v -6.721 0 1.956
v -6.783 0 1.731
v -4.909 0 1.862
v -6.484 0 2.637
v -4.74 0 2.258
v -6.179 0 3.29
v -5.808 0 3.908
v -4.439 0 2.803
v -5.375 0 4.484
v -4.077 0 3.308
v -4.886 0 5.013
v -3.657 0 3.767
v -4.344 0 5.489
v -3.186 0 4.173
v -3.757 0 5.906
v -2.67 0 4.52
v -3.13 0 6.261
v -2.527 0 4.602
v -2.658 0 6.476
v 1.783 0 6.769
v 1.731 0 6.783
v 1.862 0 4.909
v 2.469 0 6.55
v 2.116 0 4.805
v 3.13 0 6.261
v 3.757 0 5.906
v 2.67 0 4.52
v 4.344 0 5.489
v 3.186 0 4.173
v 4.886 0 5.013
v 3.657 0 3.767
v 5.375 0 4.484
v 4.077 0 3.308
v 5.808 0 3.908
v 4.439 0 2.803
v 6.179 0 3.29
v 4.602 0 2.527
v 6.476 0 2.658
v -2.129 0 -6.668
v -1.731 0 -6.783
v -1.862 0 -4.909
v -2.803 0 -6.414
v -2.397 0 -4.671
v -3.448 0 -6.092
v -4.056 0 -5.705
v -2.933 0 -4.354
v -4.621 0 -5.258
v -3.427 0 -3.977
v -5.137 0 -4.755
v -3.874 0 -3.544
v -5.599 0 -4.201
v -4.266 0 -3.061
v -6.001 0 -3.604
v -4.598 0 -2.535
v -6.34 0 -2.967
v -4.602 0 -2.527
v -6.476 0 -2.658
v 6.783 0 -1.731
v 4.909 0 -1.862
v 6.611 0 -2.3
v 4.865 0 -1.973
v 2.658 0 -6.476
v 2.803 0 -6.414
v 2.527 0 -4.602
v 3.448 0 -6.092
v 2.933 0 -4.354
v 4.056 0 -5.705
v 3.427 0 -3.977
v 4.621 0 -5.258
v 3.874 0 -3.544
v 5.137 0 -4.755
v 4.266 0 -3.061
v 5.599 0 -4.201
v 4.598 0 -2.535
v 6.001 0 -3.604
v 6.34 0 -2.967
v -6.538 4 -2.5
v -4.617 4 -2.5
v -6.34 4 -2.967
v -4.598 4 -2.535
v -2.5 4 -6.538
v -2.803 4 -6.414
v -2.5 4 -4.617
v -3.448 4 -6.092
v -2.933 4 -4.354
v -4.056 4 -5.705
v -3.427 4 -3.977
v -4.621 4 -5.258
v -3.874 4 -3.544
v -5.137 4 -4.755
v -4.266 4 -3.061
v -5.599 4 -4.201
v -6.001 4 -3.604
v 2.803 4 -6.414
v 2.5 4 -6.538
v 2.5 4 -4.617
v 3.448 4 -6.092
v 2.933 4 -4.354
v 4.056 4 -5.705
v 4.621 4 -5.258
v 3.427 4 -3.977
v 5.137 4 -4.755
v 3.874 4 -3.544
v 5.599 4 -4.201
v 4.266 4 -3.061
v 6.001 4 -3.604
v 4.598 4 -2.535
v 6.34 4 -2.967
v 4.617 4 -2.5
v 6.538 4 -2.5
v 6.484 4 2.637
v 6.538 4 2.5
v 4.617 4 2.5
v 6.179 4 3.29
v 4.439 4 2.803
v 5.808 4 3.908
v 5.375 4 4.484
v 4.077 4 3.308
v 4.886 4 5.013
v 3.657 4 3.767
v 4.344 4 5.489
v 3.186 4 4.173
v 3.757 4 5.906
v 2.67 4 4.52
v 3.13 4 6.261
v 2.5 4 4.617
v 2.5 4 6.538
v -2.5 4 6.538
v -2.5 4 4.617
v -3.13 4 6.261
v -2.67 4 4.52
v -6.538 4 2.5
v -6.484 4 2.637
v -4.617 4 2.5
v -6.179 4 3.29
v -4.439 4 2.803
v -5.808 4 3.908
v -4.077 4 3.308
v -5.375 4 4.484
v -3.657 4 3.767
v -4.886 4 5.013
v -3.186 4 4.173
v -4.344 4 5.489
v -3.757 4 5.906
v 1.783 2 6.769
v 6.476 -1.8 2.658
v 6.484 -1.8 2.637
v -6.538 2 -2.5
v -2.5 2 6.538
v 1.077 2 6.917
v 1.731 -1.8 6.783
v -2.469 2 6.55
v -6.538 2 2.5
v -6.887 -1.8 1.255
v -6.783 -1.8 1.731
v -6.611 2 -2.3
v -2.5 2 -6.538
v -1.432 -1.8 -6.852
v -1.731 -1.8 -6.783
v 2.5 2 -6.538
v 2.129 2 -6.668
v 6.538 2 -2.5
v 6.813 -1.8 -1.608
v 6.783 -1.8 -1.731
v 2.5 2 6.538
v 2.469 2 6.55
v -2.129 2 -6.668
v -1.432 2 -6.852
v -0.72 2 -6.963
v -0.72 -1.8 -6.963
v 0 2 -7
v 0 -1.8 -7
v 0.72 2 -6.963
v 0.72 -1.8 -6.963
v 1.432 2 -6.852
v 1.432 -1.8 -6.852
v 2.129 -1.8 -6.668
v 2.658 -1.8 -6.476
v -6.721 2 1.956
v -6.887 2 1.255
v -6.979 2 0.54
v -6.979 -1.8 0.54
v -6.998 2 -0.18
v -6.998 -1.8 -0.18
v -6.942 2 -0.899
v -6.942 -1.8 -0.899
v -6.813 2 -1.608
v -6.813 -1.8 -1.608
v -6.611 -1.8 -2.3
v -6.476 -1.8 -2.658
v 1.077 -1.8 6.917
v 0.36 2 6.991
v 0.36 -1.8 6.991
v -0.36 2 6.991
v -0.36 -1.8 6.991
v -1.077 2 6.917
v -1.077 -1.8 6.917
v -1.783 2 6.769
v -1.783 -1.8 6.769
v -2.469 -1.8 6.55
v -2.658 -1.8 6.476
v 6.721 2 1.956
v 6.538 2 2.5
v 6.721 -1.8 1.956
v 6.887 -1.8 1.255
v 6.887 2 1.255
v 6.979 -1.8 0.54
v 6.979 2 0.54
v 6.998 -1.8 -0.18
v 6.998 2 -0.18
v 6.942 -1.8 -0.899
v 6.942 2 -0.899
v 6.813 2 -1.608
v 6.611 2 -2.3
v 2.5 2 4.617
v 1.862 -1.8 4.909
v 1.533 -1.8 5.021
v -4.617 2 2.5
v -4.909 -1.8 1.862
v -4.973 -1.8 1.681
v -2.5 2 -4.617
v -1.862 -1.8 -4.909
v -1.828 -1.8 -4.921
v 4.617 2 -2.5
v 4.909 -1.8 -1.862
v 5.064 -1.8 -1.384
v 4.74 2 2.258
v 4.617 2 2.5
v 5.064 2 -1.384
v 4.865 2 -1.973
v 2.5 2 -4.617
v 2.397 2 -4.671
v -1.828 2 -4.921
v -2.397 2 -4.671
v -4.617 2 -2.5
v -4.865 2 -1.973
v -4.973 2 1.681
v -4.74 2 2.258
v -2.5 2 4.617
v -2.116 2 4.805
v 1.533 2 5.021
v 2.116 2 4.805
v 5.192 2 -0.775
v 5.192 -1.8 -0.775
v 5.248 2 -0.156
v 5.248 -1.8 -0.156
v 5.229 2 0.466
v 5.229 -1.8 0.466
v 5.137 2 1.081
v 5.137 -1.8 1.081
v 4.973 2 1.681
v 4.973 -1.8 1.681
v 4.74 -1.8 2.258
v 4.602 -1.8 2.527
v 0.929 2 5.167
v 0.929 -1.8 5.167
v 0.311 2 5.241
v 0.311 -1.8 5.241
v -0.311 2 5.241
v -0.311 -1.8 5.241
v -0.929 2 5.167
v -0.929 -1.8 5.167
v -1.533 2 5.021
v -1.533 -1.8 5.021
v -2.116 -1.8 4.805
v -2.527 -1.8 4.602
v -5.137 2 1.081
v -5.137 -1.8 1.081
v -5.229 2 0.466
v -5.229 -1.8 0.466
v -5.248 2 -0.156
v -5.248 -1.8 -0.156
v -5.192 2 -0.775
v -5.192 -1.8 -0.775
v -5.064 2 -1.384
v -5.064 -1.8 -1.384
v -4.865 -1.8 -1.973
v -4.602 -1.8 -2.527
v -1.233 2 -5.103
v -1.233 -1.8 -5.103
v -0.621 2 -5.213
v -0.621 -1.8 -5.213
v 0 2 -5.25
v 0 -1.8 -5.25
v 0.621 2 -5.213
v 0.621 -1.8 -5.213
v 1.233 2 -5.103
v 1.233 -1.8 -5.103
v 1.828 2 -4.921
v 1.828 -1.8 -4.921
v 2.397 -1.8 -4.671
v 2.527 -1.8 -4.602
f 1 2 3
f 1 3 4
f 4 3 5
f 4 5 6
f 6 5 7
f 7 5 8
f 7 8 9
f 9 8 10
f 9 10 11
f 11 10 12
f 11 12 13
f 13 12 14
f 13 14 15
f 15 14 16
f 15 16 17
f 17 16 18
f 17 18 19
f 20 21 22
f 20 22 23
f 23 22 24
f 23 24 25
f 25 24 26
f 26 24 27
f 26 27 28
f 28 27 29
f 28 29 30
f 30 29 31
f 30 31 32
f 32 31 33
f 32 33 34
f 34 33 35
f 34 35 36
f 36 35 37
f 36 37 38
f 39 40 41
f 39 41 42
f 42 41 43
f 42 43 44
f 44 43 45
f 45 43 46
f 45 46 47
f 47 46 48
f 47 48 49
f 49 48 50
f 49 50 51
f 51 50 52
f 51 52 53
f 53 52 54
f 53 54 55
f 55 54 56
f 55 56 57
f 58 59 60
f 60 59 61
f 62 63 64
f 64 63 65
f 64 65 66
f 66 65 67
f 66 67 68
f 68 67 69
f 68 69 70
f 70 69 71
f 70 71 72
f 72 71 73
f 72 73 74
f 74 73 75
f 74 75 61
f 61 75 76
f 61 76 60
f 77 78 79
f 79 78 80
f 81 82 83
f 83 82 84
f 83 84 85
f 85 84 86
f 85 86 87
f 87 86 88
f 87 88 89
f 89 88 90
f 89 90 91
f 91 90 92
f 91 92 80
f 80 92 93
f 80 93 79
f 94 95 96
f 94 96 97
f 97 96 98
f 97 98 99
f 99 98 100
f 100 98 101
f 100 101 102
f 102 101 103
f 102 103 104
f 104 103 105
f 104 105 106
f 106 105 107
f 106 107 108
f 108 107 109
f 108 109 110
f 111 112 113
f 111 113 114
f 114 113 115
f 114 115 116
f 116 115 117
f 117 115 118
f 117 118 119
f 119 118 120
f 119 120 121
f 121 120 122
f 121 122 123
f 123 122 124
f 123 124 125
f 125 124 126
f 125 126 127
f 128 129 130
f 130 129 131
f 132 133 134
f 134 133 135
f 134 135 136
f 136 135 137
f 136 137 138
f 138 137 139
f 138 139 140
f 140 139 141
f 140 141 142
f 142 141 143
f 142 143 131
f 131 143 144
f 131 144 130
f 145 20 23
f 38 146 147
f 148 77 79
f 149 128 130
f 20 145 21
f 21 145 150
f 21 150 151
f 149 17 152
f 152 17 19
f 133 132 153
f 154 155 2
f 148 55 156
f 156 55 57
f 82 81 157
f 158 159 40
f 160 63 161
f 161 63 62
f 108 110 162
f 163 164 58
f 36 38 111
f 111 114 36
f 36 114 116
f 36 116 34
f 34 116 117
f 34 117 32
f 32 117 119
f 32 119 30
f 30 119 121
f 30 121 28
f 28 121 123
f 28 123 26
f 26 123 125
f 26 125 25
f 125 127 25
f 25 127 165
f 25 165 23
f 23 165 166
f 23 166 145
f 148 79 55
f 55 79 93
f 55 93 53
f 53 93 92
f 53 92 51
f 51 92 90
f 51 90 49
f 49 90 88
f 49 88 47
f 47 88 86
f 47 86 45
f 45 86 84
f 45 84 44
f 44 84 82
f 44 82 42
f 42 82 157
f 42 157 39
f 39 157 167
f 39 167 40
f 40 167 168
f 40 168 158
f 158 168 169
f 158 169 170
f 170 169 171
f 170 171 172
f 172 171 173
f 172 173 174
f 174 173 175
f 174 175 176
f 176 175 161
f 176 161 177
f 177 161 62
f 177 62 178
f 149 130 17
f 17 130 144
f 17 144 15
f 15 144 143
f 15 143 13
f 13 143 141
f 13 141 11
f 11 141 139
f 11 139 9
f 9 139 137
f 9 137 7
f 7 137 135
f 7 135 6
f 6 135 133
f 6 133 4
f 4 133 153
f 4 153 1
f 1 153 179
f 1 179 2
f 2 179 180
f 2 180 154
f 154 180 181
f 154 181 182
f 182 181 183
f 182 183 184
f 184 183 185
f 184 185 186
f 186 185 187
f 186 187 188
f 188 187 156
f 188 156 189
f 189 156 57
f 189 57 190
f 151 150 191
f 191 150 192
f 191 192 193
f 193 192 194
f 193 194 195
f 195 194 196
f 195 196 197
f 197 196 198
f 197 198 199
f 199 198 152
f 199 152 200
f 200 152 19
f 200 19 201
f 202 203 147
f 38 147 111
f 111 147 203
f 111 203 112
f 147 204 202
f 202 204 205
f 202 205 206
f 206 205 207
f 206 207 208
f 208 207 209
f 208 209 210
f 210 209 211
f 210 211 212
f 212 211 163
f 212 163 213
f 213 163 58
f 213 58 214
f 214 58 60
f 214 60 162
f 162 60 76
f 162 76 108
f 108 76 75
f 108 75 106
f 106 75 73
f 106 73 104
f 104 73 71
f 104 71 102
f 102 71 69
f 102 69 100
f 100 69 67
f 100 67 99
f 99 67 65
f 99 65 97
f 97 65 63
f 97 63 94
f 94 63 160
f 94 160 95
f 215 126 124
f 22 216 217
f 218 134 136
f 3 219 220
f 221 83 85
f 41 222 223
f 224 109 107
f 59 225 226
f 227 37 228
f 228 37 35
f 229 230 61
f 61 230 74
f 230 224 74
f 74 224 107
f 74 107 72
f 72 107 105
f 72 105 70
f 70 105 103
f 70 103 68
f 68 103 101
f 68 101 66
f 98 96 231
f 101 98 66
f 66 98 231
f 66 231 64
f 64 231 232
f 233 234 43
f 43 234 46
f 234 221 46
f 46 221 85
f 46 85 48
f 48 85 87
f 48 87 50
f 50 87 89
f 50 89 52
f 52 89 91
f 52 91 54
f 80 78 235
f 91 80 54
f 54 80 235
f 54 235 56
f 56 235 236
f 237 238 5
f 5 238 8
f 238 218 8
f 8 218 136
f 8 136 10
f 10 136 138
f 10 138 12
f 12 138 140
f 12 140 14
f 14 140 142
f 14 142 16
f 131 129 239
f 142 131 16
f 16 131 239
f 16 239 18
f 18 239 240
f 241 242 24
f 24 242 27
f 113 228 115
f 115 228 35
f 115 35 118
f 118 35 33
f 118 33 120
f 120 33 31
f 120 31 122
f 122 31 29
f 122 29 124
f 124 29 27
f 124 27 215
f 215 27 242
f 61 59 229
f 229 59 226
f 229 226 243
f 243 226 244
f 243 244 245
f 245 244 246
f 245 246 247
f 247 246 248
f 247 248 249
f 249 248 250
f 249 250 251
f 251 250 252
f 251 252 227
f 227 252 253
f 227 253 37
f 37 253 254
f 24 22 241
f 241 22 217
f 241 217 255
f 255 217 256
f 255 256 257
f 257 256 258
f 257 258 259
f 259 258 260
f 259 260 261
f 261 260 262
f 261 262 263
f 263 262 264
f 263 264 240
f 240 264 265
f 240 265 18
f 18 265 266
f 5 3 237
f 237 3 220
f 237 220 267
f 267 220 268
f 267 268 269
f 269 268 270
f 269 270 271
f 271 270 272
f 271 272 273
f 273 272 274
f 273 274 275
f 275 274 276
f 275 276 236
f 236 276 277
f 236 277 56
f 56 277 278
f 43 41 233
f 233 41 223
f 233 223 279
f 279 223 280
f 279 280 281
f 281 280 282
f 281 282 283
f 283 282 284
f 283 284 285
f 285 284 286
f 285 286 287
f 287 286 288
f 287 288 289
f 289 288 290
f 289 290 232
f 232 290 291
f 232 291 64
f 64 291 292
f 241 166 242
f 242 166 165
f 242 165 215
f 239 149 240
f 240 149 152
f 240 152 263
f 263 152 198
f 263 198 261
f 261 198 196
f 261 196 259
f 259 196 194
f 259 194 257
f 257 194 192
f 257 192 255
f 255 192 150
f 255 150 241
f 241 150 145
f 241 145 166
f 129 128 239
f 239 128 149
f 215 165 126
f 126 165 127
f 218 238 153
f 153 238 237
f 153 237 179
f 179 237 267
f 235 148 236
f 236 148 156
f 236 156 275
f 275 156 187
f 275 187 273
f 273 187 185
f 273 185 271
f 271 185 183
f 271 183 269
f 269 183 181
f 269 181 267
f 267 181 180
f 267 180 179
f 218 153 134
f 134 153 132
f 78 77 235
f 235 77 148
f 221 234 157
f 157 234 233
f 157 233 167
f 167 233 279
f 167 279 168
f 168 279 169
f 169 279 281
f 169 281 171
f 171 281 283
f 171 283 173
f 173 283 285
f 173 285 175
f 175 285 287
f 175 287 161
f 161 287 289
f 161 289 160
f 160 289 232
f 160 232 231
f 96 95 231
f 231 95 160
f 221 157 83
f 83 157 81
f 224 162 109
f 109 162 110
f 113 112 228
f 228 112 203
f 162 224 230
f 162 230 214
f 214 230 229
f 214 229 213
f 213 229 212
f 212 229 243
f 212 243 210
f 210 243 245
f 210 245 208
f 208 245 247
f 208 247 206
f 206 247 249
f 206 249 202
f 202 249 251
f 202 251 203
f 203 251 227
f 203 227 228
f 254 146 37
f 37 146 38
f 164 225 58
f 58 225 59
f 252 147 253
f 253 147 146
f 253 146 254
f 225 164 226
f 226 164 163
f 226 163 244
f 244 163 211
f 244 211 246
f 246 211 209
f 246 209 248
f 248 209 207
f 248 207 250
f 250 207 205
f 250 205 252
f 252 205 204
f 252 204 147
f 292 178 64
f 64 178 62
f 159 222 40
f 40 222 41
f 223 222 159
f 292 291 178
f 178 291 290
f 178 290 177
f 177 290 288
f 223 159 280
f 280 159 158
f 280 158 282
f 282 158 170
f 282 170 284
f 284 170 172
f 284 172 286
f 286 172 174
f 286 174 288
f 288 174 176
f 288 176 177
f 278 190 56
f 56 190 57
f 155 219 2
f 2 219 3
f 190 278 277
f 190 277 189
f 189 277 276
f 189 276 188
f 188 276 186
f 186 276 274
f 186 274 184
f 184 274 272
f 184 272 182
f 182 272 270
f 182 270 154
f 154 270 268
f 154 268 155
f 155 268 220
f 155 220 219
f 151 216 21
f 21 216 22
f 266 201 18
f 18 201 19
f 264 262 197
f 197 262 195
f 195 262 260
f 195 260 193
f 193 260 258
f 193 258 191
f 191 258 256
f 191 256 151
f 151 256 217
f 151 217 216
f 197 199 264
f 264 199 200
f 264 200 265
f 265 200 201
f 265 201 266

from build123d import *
from build123d.topology import SkipClean

# Parameters (mm, degrees)
SKETCH_1_R          = 7
SKETCH_1_R_2        = 5.25
EXTRUDE_1_DEPTH     = 4
CUT_EXTRUDE_1_DEPTH = 2
EXTRUDE_START       = 1.8
EXTRUDE_2_DEPTH     = 1.8


with BuildPart() as part:
    # 草图1 → 凸台-拉伸1 (new body)
    with BuildSketch(Plane(origin=(0, 0, 0), x_dir=(1, 0, 0), z_dir=(0, 1, 0))):
        with Locations(Location((0, 0, 0), (0, 0, 270))):
            Circle(SKETCH_1_R)
        with Locations(Location((0, 0, 0), (0, 0, 270))):
            Circle(SKETCH_1_R_2, mode=Mode.SUBTRACT)
    extrude(amount=EXTRUDE_1_DEPTH)

    # 草图2 → 切除-拉伸1 (cut)
    with BuildSketch(Plane(origin=(0, 4, 0), x_dir=(1, 0, 0), z_dir=(0, 1, 0))):
        Polygon((-2.5, 2.5), (-2.5, 8), (2.5, 8), (2.5, 2.5), (8, 2.5), (8, -2.5), (2.5, -2.5), (2.5, -8), (-2.5, -8), (-2.5, -2.5), (-8, -2.5), (-8, 2.5), align=None)
    extrude(amount=-CUT_EXTRUDE_1_DEPTH, mode=Mode.SUBTRACT)

    # 草图3 → 凸台-拉伸2 (add)
    with SkipClean():  # the faces are left unmerged after this step: merging them gives an invalid solid
        with BuildSketch(Plane.XZ.offset(EXTRUDE_START)):
            with BuildLine():
                ThreePointArc((1.731088279, 6.782575718), (-0.488295316, 6.982948352), (-2.658193542, 6.475647234))
                Line((-2.658193542, 6.475647234), (-2.527156931, 4.601736395))
                ThreePointArc((-2.527156931, 4.601736395), (-0.366221487, 5.237211264), (1.86212489, 4.908664879))
                Line((1.86212489, 4.908664879), (1.731088279, 6.782575718))
            make_face()
            with BuildLine():
                Line((-4.908664879, 1.86212489), (-6.782575718, 1.731088279))
                ThreePointArc((-6.782575718, 1.731088279), (-6.982948352, -0.488295316), (-6.475647234, -2.658193542))
                Line((-6.475647234, -2.658193542), (-4.601736395, -2.527156931))
                ThreePointArc((-4.601736395, -2.527156931), (-5.237211264, -0.366221487), (-4.908664879, 1.86212489))
            make_face()
            with BuildLine():
                Line((-1.86212489, -4.908664879), (-1.731088279, -6.782575718))
                ThreePointArc((-1.731088279, -6.782575718), (0.488295316, -6.982948352), (2.658193542, -6.475647234))
                Line((2.658193542, -6.475647234), (2.527156931, -4.601736395))
                ThreePointArc((2.527156931, -4.601736395), (0.366221487, -5.237211264), (-1.86212489, -4.908664879))
            make_face()
            with BuildLine():
                ThreePointArc((7, 0), (6.867660833, 1.354708339), (6.475647234, 2.658193542))
                Line((6.475647234, 2.658193542), (4.601736395, 2.527156931))
                ThreePointArc((4.601736395, 2.527156931), (5.085352302, 1.304489158), (5.25, 0))
                ThreePointArc((5.25, 0), (5.163961203, -0.946575244), (4.908664879, -1.86212489))
                Line((4.908664879, -1.86212489), (6.782575718, -1.731088279))
                ThreePointArc((6.782575718, -1.731088279), (6.945431233, -0.872344535), (7, 0))
            make_face()
        extrude(amount=-EXTRUDE_2_DEPTH)


solid = part.part
